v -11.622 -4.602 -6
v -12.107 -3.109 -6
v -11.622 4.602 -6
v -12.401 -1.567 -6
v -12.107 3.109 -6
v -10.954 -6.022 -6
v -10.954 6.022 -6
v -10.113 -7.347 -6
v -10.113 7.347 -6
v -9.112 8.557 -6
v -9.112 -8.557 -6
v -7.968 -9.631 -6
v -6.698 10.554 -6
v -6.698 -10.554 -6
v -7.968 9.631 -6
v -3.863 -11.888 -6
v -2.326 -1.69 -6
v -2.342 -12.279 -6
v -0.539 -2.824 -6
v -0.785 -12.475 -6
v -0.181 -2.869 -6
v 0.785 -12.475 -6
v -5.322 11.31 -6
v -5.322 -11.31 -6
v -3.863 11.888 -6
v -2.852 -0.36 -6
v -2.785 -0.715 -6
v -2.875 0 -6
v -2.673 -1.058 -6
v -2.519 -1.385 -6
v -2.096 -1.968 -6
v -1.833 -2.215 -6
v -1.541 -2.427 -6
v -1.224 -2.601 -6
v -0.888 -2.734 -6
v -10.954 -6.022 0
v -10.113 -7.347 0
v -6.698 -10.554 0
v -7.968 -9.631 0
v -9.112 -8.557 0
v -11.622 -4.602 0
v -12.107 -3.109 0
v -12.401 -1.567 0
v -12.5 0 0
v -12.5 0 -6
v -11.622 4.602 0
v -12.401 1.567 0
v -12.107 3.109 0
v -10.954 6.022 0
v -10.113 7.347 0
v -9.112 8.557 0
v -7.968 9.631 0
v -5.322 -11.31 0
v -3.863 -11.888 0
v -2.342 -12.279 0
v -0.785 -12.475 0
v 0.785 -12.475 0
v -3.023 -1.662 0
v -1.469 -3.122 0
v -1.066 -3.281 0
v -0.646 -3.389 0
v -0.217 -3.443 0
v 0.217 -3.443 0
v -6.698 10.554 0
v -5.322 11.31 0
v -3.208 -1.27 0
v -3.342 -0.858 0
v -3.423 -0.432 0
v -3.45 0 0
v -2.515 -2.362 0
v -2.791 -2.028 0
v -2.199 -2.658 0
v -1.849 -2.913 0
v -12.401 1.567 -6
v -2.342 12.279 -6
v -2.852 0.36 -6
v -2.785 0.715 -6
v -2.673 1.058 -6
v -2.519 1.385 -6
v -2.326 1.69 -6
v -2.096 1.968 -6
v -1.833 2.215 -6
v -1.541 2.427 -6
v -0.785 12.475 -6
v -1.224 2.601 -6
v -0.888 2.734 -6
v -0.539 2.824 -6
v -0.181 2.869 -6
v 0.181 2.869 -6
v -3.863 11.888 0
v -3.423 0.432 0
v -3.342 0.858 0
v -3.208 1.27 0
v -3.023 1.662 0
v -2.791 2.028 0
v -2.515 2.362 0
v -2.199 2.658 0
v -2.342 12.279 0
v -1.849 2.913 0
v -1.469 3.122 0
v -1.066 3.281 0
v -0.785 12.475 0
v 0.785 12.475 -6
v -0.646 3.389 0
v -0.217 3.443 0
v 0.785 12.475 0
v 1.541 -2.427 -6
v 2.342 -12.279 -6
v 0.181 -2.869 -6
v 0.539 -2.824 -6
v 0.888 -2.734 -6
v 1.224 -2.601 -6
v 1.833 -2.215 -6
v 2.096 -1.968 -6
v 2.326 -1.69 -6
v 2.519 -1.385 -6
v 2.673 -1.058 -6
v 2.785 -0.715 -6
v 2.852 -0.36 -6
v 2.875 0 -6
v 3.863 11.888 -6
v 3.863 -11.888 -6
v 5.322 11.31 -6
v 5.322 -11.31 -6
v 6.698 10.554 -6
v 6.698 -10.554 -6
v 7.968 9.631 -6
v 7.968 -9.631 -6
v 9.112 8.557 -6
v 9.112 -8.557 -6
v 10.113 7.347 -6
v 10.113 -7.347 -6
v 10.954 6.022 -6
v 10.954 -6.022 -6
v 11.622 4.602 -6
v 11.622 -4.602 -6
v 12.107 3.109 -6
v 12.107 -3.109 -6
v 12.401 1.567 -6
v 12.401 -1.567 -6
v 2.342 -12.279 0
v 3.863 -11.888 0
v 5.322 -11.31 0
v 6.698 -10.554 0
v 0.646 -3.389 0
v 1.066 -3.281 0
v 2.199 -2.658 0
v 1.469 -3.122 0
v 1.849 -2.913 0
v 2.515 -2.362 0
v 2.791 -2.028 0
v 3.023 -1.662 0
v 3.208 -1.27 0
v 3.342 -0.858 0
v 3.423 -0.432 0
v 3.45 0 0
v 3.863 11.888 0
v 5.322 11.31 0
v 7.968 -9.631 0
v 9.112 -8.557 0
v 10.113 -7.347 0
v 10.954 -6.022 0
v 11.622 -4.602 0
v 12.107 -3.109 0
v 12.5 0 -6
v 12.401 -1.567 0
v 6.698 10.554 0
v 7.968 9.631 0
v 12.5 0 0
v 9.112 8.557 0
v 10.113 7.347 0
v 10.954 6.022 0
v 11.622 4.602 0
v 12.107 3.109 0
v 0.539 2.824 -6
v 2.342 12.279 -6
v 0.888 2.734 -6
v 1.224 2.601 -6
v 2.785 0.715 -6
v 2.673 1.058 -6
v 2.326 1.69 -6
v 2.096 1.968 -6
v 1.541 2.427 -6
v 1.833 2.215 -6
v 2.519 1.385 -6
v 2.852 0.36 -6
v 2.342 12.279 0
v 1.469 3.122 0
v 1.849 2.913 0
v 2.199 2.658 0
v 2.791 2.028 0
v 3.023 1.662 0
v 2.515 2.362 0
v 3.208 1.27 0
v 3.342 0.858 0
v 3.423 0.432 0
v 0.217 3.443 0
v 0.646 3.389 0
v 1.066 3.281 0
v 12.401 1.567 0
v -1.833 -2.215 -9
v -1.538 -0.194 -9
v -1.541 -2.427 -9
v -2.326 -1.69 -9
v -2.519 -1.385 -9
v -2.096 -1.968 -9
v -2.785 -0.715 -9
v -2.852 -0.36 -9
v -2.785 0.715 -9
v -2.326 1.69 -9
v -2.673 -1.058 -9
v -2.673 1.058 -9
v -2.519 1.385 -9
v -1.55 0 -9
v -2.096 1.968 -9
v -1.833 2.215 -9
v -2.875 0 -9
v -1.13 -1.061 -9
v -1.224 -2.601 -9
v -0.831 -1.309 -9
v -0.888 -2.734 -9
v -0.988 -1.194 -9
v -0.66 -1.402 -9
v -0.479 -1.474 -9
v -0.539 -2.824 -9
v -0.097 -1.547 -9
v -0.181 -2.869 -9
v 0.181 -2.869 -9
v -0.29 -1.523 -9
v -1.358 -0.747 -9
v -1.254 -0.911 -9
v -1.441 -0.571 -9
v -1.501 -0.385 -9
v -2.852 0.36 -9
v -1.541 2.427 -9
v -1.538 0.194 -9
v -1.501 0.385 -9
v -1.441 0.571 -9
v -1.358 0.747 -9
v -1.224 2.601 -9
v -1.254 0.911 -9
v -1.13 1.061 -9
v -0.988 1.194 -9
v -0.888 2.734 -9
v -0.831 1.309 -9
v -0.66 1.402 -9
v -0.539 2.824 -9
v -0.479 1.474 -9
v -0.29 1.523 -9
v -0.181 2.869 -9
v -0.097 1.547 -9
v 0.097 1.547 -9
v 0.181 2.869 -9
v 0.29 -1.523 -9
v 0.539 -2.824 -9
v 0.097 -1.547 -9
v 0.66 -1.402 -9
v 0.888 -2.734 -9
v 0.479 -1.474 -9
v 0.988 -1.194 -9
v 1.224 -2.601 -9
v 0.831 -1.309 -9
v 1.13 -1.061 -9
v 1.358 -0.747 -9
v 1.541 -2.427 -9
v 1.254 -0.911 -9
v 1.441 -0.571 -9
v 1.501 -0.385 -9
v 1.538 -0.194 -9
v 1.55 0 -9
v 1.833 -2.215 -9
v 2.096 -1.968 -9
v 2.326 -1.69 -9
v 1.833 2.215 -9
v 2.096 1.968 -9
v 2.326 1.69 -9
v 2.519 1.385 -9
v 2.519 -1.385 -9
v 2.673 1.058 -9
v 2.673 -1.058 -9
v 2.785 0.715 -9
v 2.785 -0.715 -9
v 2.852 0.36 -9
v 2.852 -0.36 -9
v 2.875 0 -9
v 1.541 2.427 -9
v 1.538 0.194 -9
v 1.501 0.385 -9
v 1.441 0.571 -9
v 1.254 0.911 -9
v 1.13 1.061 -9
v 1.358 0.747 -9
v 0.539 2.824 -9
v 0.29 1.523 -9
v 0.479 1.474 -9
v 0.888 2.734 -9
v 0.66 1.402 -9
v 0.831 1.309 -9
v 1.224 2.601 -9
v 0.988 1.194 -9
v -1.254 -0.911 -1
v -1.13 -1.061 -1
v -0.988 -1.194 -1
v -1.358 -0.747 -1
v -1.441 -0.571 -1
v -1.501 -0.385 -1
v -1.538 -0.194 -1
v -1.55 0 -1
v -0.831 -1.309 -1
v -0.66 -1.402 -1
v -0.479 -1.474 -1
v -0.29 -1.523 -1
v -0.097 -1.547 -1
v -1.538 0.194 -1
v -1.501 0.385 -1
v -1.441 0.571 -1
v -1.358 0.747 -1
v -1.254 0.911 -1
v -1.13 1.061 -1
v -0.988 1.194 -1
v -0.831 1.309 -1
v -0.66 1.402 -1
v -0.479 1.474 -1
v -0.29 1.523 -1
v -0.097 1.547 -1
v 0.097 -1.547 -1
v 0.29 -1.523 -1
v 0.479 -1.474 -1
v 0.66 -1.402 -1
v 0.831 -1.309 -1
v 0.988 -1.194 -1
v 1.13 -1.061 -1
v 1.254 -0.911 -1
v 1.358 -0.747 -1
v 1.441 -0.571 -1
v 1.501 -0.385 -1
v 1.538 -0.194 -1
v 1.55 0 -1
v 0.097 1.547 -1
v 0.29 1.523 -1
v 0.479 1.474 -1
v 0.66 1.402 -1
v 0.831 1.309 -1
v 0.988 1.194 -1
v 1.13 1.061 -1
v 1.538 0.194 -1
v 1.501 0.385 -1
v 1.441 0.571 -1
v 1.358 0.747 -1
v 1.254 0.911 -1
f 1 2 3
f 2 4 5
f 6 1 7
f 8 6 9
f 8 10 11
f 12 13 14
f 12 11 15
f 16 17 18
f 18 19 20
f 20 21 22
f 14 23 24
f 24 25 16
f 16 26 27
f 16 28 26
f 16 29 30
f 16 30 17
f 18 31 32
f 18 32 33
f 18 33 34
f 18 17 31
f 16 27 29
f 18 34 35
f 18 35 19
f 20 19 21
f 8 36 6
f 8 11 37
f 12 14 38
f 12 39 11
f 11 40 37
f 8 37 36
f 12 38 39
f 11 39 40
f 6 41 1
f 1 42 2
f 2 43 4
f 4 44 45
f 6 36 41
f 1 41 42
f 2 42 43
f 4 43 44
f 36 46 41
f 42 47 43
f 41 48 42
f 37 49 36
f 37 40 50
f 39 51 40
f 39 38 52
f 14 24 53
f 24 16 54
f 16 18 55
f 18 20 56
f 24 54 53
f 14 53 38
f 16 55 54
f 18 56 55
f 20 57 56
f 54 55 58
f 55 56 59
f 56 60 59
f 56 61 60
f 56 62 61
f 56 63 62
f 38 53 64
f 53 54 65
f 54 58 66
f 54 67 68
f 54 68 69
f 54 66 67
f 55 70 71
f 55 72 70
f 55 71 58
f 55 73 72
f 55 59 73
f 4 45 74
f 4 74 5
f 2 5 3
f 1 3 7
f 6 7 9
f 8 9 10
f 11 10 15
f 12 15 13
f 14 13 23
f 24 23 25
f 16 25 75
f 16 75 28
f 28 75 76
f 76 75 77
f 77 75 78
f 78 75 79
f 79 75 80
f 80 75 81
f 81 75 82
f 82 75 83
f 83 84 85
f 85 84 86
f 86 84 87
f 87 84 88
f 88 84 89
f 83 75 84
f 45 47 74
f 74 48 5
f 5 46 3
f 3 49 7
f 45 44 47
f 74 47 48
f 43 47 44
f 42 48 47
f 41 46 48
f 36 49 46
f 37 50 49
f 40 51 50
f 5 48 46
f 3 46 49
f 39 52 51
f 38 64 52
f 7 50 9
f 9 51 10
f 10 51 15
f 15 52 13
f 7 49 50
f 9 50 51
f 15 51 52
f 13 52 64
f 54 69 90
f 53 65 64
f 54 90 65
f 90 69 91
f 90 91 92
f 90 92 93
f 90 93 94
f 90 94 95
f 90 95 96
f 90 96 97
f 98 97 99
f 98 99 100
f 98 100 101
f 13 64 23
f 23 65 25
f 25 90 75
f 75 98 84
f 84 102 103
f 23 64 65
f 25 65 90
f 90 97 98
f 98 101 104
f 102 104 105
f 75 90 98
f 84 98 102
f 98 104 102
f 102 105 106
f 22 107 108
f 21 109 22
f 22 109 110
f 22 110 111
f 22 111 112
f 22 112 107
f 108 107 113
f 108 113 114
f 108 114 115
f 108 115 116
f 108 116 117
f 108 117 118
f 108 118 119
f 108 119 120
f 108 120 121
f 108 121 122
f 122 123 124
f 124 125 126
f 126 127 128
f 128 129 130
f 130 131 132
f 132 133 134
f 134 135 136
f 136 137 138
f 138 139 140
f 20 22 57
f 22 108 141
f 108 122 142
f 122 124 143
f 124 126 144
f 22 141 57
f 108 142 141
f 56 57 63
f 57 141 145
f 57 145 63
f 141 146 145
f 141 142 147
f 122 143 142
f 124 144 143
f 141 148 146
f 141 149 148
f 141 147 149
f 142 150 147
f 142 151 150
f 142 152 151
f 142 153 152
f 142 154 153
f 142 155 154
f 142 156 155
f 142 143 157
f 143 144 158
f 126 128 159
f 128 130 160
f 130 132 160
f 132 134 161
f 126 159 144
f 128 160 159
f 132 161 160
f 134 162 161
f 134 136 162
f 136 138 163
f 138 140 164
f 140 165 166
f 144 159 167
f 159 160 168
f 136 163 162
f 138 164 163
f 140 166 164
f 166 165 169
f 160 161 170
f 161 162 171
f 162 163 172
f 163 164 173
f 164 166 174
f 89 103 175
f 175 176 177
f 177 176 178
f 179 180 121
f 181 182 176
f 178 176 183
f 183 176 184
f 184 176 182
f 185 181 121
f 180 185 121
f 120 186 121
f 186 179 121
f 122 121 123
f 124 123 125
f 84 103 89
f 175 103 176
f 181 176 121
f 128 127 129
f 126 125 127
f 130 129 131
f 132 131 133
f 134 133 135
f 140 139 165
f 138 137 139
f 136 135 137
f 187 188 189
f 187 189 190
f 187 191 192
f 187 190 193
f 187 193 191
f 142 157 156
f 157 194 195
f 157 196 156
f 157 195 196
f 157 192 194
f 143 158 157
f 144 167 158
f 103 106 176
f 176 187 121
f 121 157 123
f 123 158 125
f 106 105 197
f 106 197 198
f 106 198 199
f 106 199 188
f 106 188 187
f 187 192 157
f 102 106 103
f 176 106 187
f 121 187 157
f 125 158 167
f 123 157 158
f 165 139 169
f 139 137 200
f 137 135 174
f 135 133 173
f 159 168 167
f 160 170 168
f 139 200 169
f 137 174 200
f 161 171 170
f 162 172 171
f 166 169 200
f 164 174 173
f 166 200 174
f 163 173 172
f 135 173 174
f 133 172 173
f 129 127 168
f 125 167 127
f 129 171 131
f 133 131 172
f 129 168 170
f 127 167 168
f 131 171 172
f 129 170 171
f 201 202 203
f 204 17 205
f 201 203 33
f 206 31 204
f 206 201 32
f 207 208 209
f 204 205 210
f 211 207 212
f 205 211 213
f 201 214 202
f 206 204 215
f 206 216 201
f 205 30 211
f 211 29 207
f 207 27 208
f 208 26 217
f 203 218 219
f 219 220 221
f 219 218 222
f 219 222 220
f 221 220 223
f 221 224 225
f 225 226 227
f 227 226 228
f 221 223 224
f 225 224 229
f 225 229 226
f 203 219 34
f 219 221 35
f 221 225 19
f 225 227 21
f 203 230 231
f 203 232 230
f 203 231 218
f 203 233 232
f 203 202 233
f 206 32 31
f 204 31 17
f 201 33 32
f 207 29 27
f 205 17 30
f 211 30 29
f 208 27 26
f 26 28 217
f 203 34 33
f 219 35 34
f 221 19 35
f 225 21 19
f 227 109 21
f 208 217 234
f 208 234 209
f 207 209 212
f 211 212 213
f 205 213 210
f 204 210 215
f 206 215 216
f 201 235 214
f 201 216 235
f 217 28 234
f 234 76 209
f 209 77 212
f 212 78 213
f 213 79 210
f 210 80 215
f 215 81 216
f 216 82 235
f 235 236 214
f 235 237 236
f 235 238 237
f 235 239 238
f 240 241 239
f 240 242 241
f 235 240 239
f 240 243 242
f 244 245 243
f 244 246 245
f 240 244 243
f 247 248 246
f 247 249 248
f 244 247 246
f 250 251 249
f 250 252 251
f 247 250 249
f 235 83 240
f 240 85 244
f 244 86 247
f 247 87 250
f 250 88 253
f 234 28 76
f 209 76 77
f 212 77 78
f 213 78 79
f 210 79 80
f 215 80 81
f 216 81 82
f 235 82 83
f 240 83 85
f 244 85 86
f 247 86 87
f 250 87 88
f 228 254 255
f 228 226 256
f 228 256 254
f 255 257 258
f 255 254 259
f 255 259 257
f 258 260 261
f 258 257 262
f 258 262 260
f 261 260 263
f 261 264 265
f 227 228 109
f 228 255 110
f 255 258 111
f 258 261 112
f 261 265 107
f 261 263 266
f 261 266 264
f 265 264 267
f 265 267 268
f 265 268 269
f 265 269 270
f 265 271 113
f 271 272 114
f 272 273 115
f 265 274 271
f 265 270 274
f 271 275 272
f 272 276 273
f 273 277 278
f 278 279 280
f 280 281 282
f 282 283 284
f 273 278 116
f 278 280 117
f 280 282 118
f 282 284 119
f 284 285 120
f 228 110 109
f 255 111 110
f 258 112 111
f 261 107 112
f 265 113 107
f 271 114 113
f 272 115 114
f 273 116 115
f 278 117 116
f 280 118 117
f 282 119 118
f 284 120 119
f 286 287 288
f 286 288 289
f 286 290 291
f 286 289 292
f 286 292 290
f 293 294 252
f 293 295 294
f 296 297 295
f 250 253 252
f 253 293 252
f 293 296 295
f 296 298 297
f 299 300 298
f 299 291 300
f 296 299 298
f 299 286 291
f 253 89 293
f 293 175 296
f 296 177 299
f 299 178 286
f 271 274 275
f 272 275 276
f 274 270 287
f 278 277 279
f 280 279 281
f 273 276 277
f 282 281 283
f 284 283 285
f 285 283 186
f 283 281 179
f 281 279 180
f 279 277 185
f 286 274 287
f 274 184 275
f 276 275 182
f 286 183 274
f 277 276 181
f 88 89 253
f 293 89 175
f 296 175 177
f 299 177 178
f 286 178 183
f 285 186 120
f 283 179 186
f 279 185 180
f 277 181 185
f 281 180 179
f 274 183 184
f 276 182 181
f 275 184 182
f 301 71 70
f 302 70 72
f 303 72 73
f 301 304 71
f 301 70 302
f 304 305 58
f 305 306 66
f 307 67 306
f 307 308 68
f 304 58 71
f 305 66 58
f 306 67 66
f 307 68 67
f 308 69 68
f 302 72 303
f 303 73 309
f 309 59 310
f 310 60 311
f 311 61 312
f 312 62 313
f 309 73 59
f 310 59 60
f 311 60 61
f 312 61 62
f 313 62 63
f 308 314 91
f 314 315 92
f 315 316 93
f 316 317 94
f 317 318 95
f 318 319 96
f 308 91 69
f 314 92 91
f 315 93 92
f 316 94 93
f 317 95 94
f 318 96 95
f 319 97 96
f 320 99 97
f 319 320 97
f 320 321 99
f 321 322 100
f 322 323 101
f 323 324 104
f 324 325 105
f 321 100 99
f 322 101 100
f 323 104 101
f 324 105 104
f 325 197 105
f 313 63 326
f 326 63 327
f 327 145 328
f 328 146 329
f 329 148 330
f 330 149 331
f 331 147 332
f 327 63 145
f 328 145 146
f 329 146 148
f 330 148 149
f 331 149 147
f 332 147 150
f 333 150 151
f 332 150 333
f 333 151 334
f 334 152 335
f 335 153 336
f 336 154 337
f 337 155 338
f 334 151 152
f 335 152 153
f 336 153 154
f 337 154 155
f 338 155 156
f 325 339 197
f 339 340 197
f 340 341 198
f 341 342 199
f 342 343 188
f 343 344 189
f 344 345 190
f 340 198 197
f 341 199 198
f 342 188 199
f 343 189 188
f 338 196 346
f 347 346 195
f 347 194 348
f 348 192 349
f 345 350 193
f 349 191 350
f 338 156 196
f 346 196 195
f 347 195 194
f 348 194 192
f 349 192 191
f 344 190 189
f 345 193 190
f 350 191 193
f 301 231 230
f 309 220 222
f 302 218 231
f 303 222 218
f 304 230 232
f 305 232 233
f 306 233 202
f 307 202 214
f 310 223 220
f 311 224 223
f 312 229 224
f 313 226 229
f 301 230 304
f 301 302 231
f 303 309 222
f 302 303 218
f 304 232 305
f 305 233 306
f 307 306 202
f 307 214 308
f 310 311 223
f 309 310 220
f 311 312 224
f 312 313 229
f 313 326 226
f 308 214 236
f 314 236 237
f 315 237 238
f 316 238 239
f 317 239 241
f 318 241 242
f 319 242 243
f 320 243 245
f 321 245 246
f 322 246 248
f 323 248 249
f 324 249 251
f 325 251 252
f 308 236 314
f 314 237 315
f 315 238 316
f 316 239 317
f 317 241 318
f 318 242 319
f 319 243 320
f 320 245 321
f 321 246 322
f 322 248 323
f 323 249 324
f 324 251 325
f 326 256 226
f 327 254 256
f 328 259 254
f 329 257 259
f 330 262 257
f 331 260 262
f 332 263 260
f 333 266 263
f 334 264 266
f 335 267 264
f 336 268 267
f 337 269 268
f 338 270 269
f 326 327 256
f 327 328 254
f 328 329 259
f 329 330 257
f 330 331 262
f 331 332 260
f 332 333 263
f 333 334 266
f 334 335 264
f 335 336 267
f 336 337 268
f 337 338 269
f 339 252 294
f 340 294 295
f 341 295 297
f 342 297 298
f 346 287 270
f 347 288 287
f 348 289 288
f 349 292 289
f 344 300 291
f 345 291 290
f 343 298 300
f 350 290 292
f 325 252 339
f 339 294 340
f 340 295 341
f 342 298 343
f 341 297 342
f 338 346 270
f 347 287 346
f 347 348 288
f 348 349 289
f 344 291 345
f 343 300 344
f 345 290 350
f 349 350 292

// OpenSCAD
$fn = 50;


difference() {
	union() {
		translate(v = [0, 0, -6.0000000000]) {
			cylinder(h = 6, r = 12.5000000000);
		}
		#translate(v = [0, 0, -9.0000000000]) {
			cylinder(h = 9, r = 2.8750000000);
		}
	}
	union() {
		translate(v = [0, 0, 0]) {
			rotate(a = [0, 0, 0]) {
				difference() {
					union() {
						translate(v = [0, 0, -9.0000000000]) {
							cylinder(h = 9, r = 1.2500000000);
						}
						translate(v = [0, 0, -1.0000000000]) {
							cylinder(h = 1.0000000000, r1 = 1.5500000000, r2 = 3.4500000000);
						}
						translate(v = [0, 0, -9.0000000000]) {
							cylinder(h = 9, r = 1.5500000000);
						}
						translate(v = [0, 0, -9.0000000000]) {
							cylinder(h = 9, r = 1.2500000000);
						}
					}
					union();
				}
			}
		}
	}
}
